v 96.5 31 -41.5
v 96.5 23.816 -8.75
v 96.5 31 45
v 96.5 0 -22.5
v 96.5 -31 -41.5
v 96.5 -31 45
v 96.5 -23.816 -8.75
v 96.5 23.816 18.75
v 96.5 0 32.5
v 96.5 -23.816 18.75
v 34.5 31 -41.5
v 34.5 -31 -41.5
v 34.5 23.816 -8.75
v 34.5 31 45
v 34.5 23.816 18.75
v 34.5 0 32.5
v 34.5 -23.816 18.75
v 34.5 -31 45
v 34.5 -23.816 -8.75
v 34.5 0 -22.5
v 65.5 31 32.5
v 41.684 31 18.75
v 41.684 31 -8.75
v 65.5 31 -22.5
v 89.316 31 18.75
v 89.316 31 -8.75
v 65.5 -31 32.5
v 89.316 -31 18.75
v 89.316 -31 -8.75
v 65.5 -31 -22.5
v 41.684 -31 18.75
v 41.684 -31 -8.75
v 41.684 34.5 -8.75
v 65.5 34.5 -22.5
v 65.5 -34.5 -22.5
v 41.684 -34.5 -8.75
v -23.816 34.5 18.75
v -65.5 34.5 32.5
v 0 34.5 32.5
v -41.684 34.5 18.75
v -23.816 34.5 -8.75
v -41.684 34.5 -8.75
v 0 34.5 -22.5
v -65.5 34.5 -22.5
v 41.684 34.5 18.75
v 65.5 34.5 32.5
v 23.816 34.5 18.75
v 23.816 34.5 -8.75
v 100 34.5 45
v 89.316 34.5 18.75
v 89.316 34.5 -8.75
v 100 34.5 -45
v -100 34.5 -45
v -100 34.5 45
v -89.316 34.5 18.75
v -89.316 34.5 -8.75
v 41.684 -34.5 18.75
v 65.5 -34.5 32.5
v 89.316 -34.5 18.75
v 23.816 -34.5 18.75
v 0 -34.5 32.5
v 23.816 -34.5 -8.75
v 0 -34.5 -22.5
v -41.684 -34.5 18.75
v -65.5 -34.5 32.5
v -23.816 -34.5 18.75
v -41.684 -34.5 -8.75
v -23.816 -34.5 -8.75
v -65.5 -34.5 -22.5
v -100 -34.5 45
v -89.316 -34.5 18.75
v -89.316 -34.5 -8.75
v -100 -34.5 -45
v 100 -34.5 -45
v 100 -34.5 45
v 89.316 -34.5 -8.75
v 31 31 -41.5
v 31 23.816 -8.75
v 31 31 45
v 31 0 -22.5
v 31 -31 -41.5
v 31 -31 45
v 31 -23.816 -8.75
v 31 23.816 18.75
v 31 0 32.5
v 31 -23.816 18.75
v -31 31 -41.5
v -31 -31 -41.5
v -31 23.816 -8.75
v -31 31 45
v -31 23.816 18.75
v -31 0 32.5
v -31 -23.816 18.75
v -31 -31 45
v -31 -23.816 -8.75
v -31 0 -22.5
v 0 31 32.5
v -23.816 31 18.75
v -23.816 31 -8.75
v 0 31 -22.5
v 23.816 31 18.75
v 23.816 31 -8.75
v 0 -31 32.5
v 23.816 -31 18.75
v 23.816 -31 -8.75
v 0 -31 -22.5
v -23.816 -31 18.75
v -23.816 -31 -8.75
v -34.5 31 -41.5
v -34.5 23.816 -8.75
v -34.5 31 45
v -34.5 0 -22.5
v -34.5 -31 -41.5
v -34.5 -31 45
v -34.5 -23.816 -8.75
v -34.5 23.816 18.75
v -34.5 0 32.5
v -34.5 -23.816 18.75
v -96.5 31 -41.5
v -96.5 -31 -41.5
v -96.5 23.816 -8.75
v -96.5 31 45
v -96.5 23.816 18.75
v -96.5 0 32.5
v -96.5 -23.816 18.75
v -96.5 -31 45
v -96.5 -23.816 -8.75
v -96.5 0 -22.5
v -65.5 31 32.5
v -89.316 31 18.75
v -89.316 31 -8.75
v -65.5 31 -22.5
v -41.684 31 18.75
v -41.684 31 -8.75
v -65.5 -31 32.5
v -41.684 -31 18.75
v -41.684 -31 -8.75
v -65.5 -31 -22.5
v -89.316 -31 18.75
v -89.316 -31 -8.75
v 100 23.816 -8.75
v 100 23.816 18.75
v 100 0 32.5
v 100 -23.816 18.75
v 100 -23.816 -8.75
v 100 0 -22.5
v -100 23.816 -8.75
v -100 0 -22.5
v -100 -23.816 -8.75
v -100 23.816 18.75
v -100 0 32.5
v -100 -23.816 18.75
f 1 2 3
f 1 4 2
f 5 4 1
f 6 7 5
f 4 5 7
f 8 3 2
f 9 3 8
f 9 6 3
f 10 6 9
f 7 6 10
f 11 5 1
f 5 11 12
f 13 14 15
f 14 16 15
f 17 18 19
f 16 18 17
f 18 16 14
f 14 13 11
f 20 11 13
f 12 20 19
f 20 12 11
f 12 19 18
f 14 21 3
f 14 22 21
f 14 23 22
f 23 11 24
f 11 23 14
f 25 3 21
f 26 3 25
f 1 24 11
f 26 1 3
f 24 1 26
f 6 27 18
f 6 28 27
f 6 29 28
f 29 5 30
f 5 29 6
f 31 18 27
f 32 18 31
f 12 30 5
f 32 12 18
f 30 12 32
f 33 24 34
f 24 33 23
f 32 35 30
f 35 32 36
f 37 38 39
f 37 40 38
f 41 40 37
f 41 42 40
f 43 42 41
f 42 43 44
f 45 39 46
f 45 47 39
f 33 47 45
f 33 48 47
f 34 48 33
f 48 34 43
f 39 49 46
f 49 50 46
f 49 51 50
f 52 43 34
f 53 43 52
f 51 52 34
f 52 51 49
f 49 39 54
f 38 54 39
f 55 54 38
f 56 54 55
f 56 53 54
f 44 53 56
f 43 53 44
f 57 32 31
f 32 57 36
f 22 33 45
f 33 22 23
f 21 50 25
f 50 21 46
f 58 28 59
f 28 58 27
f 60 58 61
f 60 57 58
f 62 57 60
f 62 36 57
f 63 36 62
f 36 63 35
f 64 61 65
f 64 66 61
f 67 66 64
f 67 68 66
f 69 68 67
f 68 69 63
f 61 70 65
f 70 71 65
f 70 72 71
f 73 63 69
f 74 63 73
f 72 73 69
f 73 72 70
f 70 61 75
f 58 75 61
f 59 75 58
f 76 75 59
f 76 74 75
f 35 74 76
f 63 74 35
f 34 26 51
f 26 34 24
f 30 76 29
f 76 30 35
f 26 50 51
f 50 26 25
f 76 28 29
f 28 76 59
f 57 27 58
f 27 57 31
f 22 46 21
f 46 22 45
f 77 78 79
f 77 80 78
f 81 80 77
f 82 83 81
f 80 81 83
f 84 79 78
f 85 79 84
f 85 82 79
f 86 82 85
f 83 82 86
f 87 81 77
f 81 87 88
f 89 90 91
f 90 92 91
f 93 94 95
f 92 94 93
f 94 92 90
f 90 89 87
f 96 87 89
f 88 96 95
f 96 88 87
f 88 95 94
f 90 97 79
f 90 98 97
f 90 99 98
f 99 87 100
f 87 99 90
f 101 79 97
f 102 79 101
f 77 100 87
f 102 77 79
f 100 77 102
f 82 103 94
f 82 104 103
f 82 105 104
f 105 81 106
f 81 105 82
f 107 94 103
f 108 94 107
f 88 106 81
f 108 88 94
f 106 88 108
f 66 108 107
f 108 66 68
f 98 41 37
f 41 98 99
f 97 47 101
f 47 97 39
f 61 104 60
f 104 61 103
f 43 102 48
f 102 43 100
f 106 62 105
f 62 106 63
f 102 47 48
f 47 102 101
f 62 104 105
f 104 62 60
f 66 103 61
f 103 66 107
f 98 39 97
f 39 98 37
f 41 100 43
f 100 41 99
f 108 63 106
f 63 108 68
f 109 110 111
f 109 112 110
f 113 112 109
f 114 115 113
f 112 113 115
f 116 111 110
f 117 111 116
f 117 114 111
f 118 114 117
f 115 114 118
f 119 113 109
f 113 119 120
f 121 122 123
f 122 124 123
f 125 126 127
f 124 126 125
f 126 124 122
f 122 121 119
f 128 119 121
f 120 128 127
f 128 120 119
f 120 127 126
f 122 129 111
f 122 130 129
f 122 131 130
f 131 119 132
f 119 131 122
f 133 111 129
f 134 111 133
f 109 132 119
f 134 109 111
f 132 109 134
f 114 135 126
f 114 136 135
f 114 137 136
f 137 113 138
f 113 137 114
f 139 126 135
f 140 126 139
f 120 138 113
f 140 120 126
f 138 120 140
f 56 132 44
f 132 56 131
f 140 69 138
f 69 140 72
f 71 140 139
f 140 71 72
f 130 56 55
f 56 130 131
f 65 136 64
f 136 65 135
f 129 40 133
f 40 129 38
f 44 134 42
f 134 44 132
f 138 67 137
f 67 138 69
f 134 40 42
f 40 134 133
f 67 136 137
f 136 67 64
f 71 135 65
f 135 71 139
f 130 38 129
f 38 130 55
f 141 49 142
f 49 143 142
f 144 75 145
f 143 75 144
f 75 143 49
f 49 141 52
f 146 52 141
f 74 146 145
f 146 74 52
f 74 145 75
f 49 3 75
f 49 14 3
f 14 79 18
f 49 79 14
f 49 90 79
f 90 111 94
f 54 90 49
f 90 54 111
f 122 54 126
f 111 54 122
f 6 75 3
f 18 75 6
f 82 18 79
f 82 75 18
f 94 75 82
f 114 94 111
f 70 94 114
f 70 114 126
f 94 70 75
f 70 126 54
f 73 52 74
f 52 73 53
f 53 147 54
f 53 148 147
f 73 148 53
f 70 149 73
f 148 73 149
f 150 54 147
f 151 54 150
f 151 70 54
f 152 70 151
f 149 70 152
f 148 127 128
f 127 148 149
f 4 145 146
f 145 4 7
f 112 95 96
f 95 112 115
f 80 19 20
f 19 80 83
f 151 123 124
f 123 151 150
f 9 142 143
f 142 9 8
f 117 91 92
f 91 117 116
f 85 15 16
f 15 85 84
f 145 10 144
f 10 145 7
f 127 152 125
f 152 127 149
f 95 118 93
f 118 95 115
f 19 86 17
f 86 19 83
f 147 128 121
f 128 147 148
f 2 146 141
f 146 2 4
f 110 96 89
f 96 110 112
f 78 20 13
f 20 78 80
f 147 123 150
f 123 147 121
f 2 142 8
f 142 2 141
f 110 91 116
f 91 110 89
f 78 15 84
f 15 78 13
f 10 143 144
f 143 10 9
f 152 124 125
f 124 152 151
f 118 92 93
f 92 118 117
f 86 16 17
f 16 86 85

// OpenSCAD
$fn = 6;
height = 90;
length = 200;
holeWidth = 62;

gap = (length - 3*holeWidth)/4;
echo(gap=gap);
width = holeWidth+2*gap;
sideholeDiameter = height-35;
shiftUp = 5;

difference(){	
	cube([length, width, height], center=true);
	
	xAbs = (gap + holeWidth);
	for(x = [xAbs, 0, -xAbs]){
		translate([x, 0, 0]){
			translate([0, 0, gap])
				#cube([holeWidth, holeWidth, height], center=true);
			translate([0, 0, shiftUp])
				rotate([90, 90, 0])
					#cylinder(h=width, d=sideholeDiameter, center=true);
		}
	}
	translate([0, 0, shiftUp])
		rotate([0, 90, 0])
			#cylinder(h=length, d=sideholeDiameter, center=true);
}
